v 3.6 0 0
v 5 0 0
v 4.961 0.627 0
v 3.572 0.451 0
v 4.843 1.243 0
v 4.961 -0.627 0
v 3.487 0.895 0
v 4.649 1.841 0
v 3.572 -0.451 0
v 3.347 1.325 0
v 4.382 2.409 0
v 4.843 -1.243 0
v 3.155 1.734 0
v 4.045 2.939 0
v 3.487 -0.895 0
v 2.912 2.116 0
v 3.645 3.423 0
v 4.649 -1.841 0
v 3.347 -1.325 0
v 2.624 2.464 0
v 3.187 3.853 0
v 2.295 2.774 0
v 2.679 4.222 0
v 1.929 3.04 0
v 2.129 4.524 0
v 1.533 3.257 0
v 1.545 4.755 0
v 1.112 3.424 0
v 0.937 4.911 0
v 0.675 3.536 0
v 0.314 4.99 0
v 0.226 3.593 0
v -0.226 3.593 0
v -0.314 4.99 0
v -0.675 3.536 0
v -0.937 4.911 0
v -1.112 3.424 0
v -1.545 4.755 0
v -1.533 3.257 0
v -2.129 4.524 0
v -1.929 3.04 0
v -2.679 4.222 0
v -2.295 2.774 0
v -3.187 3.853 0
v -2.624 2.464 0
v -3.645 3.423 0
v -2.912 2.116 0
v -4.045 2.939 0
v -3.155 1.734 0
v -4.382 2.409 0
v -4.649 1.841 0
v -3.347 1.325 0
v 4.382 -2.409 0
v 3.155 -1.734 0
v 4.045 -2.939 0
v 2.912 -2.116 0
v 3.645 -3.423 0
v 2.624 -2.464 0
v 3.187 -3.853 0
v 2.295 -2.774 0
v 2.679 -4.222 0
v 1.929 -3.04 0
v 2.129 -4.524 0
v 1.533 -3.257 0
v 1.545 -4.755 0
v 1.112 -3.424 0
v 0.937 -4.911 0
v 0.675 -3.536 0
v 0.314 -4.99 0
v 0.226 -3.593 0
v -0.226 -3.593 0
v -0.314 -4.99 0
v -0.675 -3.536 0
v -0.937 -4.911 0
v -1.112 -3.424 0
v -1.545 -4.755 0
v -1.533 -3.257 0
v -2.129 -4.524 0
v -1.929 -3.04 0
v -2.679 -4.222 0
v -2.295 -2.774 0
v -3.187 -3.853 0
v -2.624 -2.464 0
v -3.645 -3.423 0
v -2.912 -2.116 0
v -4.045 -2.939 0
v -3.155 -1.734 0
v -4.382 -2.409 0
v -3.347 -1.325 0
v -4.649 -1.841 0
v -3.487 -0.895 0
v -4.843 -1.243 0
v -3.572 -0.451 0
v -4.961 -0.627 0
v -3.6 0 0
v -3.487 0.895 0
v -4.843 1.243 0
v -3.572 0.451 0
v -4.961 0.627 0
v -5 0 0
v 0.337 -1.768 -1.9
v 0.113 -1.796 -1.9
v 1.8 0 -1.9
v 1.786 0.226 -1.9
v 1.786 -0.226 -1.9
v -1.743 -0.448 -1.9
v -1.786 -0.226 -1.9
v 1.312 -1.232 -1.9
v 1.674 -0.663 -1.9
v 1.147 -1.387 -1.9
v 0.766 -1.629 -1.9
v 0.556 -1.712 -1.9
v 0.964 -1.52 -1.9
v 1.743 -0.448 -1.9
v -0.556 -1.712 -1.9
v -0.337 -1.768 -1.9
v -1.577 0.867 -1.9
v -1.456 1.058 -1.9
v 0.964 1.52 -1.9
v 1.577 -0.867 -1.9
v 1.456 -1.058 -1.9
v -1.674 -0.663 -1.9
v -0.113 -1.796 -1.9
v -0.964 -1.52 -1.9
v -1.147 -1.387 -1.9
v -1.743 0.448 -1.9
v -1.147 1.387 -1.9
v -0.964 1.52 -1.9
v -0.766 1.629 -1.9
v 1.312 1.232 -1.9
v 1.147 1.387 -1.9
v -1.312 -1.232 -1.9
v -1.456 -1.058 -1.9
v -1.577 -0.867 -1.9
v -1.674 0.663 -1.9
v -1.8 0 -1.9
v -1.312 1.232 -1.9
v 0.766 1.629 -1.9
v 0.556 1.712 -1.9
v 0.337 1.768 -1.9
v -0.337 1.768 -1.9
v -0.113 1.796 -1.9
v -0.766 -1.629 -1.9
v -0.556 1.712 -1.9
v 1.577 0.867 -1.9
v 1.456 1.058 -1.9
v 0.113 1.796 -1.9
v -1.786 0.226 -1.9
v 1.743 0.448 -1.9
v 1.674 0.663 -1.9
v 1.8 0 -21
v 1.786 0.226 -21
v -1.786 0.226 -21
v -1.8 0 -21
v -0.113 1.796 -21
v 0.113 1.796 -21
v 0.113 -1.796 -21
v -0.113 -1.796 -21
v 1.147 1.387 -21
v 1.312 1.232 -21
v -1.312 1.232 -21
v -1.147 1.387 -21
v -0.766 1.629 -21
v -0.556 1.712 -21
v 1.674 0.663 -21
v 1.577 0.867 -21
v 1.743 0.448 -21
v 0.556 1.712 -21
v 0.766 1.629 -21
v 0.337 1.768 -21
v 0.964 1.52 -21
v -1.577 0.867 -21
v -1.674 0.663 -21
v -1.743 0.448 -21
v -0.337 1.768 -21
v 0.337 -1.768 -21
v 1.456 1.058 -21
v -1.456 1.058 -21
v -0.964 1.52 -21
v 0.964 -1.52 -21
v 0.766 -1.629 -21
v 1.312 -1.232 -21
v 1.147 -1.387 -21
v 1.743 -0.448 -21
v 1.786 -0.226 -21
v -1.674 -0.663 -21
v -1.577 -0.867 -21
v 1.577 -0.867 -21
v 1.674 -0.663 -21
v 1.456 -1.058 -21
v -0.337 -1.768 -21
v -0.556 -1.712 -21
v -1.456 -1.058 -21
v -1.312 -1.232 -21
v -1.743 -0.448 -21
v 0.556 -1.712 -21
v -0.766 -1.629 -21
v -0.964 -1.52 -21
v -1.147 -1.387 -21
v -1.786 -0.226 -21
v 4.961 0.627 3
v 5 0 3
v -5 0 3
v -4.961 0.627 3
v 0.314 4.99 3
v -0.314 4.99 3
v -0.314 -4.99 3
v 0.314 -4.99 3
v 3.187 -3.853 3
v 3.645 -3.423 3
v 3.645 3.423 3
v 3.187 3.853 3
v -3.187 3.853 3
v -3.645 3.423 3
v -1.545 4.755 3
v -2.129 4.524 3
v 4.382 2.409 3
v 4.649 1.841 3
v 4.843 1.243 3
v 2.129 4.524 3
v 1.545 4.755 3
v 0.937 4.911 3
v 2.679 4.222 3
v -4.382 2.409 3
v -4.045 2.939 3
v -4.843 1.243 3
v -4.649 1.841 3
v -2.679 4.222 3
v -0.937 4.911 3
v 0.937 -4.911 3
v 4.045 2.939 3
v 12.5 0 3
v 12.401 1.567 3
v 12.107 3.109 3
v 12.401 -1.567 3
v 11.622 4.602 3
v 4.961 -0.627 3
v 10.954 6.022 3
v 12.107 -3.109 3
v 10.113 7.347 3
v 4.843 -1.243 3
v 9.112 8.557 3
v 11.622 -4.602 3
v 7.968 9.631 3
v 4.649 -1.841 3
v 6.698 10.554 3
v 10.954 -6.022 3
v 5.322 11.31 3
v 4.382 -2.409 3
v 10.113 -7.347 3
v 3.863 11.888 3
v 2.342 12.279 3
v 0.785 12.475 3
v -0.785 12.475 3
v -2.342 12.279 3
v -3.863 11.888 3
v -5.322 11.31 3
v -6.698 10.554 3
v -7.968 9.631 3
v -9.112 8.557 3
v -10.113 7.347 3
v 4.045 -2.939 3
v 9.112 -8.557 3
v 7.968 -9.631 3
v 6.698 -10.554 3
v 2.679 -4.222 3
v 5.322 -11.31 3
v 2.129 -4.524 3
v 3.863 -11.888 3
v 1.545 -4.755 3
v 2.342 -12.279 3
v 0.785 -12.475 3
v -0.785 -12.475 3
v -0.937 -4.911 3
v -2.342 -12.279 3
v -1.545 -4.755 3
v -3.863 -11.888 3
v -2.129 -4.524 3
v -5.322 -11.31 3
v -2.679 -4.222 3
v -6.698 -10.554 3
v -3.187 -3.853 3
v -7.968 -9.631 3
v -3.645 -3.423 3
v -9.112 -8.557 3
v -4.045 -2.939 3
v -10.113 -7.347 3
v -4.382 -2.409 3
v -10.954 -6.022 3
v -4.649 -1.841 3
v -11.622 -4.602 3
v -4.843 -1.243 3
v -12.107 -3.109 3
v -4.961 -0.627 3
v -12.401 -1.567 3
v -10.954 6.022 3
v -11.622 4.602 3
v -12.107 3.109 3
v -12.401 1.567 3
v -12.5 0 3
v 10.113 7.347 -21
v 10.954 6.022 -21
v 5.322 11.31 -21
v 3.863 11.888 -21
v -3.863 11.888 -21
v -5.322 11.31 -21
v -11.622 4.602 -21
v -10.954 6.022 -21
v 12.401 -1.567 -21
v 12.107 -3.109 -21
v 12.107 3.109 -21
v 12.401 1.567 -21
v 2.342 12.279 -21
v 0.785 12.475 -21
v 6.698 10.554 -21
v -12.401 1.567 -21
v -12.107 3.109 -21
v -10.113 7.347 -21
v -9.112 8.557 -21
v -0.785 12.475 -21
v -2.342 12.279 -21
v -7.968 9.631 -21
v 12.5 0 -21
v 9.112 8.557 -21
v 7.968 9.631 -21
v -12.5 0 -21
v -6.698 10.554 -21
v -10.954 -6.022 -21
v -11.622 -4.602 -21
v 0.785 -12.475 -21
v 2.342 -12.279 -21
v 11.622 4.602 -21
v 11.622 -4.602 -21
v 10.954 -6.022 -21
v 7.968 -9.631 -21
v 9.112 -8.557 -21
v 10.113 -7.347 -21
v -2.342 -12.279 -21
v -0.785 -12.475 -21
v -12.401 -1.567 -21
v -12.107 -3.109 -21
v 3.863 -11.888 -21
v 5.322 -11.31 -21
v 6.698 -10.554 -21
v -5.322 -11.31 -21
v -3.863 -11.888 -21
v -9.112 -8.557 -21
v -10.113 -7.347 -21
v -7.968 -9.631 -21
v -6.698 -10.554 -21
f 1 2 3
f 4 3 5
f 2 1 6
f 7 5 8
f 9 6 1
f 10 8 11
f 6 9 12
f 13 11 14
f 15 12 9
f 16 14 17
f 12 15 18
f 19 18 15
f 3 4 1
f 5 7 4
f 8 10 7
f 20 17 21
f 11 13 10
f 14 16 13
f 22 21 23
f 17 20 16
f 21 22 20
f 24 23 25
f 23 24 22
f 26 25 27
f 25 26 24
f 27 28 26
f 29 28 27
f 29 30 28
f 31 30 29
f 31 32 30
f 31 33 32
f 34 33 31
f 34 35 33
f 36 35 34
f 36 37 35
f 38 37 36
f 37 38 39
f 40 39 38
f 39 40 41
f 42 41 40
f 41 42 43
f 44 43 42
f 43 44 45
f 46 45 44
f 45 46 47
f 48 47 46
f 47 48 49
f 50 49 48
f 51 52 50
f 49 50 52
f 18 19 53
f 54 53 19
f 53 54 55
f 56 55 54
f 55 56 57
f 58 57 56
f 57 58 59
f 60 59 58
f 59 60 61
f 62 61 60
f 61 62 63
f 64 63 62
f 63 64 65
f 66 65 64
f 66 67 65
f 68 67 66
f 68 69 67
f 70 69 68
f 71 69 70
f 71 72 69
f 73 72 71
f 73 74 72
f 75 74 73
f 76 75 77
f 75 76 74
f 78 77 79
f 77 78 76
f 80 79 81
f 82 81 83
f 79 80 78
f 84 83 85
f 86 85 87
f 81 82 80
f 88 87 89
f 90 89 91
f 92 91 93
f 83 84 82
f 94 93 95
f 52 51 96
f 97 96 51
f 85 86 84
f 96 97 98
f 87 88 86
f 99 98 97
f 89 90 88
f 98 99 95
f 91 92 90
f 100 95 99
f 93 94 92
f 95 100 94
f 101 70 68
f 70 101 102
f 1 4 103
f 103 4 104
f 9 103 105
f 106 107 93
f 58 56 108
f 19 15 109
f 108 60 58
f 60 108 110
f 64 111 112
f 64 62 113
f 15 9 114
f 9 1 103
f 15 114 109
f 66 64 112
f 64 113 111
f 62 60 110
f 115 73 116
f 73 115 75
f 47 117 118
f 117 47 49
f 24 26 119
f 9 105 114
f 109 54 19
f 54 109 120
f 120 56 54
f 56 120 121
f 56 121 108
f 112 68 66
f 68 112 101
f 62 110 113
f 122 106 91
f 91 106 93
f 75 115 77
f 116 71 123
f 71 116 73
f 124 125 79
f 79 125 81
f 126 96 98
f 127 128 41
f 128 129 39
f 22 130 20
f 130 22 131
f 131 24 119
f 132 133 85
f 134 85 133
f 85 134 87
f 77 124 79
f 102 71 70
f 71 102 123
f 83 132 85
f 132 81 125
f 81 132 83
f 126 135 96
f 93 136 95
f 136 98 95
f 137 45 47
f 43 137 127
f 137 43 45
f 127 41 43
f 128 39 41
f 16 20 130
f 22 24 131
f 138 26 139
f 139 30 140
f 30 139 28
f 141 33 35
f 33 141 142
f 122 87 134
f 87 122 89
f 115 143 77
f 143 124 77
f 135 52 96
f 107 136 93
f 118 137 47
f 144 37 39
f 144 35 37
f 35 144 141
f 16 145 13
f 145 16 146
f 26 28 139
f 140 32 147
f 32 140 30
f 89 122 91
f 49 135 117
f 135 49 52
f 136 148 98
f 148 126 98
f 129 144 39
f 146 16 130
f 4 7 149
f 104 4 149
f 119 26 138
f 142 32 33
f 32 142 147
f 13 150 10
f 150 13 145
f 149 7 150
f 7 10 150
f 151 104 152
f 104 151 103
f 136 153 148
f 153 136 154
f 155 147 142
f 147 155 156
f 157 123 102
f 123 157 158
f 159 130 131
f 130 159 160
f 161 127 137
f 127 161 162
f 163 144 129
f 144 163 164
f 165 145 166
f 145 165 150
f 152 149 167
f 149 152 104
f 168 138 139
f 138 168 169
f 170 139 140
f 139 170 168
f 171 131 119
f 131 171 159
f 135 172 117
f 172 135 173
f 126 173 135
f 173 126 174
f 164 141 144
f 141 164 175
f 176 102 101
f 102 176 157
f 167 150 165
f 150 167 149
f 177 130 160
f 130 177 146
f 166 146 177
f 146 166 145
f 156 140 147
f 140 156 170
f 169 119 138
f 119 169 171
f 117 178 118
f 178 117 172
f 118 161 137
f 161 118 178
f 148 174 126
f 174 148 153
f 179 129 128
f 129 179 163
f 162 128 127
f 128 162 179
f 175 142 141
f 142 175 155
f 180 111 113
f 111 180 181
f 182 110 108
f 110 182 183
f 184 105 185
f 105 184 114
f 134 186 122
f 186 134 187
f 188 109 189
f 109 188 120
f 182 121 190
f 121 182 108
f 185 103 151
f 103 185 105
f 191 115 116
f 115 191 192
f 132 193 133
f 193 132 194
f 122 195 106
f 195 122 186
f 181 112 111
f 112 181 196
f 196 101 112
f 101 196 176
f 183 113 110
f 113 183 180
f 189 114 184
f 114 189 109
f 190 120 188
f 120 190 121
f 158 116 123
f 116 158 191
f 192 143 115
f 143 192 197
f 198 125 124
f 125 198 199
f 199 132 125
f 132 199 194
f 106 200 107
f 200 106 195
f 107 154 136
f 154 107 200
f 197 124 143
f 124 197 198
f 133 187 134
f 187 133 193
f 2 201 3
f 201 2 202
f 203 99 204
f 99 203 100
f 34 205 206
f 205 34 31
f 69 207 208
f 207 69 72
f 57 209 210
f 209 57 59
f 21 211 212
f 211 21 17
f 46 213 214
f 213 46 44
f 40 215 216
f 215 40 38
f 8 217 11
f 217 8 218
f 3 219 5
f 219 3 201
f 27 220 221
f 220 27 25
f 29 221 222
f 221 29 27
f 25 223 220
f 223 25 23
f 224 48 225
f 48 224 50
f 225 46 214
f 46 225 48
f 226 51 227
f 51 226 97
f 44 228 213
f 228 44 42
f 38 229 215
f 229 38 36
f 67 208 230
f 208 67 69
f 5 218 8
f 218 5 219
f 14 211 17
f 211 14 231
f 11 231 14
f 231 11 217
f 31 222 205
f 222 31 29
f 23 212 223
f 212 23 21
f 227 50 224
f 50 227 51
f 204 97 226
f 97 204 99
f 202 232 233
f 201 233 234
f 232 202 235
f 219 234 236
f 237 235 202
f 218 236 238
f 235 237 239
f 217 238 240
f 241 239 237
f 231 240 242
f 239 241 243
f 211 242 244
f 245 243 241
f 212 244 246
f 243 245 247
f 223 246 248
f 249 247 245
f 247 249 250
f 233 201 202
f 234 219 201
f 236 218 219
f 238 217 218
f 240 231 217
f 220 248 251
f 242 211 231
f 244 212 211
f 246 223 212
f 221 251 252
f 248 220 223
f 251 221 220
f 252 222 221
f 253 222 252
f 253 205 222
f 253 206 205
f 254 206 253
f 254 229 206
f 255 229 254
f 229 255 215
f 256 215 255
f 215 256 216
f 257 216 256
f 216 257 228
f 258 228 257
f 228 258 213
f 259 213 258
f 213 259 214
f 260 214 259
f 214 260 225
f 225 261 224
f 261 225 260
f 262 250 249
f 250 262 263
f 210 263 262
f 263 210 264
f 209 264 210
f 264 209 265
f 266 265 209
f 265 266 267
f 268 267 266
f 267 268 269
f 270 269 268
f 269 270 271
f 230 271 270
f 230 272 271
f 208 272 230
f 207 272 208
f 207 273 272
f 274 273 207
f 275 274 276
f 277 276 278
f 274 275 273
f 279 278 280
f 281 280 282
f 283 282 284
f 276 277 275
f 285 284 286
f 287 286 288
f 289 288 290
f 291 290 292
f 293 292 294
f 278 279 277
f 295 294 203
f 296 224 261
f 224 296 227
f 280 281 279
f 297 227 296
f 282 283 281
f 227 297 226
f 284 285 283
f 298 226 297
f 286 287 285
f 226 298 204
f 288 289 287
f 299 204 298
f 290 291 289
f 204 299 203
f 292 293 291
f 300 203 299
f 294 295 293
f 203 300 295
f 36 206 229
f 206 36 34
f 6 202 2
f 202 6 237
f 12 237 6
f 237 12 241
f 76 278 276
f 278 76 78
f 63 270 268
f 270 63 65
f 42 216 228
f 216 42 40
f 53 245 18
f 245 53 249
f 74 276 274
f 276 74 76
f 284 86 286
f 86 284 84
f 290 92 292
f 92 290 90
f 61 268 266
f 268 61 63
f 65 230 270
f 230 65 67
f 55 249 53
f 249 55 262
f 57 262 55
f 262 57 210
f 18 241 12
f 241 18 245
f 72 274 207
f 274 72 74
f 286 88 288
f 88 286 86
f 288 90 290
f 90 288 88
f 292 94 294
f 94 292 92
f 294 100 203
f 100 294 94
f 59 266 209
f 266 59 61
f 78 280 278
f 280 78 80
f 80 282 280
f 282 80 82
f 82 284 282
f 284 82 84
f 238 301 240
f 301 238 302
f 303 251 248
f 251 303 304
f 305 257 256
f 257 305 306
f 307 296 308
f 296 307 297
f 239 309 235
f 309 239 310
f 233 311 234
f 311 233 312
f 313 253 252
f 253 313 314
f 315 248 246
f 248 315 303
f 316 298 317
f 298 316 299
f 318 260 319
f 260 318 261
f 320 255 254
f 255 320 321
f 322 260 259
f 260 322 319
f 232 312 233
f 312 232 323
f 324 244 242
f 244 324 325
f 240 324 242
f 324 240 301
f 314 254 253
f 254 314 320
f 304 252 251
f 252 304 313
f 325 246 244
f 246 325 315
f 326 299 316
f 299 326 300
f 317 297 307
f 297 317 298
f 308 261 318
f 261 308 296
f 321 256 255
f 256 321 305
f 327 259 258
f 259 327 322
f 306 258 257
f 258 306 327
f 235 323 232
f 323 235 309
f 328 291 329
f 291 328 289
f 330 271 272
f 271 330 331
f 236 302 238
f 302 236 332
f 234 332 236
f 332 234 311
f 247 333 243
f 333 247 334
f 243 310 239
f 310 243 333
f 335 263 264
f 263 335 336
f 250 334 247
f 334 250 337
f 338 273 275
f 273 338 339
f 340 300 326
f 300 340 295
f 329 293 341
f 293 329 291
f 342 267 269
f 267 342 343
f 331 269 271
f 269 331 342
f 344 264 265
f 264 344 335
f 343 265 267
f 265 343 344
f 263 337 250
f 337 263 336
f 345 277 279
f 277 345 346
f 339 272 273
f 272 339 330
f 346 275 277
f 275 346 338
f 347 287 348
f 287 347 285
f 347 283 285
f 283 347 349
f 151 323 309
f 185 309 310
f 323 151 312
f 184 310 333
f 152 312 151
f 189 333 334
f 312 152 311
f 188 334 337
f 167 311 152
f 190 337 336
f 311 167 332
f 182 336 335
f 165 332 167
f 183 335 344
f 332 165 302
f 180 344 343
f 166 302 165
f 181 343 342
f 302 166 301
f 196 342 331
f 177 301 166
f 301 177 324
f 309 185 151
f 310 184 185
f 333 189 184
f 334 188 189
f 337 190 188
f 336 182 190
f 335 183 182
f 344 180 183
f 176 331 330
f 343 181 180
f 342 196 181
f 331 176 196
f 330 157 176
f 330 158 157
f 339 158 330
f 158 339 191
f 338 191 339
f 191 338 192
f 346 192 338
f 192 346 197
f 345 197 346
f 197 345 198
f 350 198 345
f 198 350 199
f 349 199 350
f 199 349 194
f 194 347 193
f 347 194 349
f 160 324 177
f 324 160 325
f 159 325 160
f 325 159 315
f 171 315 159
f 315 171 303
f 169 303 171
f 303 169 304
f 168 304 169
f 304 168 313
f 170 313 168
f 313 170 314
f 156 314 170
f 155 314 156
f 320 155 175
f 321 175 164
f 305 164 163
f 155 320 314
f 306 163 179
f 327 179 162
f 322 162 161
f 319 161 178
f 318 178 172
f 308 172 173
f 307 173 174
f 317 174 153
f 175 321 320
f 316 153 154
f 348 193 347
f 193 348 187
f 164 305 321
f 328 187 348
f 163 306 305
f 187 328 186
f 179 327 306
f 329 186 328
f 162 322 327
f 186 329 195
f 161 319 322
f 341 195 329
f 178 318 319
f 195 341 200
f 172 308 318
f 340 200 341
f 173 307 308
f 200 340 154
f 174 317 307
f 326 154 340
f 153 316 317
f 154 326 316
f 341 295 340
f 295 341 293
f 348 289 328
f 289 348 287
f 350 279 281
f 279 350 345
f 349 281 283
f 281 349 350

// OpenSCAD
$fn = 50;

difference() {
	union() {
		translate(v = [0, 0, -21.0]) {
			cylinder(h = 24, r = 12.5);
		}
	}
	union() {
		translate(v = [0, 0, 0]) {
			rotate(a = [0, 0, 0]) {
				difference() {
					union() {
						translate(v = [0, 0, -24.0]) {
							cylinder(h = 24, r = 1.5);
						}
						translate(v = [0, 0, -1.9]) {
							cylinder(h = 1.9, r1 = 1.8, r2 = 3.6);
						}
						translate(v = [0, 0, -24.0]) {
							cylinder(h = 24, r = 1.8);
						}
						translate(v = [0, 0, -24.0]) {
							cylinder(h = 24, r = 1.5);
						}
					}
					union();
				}
			}
		}
		#cylinder(h = 3, r = 5.0);
	}
}
